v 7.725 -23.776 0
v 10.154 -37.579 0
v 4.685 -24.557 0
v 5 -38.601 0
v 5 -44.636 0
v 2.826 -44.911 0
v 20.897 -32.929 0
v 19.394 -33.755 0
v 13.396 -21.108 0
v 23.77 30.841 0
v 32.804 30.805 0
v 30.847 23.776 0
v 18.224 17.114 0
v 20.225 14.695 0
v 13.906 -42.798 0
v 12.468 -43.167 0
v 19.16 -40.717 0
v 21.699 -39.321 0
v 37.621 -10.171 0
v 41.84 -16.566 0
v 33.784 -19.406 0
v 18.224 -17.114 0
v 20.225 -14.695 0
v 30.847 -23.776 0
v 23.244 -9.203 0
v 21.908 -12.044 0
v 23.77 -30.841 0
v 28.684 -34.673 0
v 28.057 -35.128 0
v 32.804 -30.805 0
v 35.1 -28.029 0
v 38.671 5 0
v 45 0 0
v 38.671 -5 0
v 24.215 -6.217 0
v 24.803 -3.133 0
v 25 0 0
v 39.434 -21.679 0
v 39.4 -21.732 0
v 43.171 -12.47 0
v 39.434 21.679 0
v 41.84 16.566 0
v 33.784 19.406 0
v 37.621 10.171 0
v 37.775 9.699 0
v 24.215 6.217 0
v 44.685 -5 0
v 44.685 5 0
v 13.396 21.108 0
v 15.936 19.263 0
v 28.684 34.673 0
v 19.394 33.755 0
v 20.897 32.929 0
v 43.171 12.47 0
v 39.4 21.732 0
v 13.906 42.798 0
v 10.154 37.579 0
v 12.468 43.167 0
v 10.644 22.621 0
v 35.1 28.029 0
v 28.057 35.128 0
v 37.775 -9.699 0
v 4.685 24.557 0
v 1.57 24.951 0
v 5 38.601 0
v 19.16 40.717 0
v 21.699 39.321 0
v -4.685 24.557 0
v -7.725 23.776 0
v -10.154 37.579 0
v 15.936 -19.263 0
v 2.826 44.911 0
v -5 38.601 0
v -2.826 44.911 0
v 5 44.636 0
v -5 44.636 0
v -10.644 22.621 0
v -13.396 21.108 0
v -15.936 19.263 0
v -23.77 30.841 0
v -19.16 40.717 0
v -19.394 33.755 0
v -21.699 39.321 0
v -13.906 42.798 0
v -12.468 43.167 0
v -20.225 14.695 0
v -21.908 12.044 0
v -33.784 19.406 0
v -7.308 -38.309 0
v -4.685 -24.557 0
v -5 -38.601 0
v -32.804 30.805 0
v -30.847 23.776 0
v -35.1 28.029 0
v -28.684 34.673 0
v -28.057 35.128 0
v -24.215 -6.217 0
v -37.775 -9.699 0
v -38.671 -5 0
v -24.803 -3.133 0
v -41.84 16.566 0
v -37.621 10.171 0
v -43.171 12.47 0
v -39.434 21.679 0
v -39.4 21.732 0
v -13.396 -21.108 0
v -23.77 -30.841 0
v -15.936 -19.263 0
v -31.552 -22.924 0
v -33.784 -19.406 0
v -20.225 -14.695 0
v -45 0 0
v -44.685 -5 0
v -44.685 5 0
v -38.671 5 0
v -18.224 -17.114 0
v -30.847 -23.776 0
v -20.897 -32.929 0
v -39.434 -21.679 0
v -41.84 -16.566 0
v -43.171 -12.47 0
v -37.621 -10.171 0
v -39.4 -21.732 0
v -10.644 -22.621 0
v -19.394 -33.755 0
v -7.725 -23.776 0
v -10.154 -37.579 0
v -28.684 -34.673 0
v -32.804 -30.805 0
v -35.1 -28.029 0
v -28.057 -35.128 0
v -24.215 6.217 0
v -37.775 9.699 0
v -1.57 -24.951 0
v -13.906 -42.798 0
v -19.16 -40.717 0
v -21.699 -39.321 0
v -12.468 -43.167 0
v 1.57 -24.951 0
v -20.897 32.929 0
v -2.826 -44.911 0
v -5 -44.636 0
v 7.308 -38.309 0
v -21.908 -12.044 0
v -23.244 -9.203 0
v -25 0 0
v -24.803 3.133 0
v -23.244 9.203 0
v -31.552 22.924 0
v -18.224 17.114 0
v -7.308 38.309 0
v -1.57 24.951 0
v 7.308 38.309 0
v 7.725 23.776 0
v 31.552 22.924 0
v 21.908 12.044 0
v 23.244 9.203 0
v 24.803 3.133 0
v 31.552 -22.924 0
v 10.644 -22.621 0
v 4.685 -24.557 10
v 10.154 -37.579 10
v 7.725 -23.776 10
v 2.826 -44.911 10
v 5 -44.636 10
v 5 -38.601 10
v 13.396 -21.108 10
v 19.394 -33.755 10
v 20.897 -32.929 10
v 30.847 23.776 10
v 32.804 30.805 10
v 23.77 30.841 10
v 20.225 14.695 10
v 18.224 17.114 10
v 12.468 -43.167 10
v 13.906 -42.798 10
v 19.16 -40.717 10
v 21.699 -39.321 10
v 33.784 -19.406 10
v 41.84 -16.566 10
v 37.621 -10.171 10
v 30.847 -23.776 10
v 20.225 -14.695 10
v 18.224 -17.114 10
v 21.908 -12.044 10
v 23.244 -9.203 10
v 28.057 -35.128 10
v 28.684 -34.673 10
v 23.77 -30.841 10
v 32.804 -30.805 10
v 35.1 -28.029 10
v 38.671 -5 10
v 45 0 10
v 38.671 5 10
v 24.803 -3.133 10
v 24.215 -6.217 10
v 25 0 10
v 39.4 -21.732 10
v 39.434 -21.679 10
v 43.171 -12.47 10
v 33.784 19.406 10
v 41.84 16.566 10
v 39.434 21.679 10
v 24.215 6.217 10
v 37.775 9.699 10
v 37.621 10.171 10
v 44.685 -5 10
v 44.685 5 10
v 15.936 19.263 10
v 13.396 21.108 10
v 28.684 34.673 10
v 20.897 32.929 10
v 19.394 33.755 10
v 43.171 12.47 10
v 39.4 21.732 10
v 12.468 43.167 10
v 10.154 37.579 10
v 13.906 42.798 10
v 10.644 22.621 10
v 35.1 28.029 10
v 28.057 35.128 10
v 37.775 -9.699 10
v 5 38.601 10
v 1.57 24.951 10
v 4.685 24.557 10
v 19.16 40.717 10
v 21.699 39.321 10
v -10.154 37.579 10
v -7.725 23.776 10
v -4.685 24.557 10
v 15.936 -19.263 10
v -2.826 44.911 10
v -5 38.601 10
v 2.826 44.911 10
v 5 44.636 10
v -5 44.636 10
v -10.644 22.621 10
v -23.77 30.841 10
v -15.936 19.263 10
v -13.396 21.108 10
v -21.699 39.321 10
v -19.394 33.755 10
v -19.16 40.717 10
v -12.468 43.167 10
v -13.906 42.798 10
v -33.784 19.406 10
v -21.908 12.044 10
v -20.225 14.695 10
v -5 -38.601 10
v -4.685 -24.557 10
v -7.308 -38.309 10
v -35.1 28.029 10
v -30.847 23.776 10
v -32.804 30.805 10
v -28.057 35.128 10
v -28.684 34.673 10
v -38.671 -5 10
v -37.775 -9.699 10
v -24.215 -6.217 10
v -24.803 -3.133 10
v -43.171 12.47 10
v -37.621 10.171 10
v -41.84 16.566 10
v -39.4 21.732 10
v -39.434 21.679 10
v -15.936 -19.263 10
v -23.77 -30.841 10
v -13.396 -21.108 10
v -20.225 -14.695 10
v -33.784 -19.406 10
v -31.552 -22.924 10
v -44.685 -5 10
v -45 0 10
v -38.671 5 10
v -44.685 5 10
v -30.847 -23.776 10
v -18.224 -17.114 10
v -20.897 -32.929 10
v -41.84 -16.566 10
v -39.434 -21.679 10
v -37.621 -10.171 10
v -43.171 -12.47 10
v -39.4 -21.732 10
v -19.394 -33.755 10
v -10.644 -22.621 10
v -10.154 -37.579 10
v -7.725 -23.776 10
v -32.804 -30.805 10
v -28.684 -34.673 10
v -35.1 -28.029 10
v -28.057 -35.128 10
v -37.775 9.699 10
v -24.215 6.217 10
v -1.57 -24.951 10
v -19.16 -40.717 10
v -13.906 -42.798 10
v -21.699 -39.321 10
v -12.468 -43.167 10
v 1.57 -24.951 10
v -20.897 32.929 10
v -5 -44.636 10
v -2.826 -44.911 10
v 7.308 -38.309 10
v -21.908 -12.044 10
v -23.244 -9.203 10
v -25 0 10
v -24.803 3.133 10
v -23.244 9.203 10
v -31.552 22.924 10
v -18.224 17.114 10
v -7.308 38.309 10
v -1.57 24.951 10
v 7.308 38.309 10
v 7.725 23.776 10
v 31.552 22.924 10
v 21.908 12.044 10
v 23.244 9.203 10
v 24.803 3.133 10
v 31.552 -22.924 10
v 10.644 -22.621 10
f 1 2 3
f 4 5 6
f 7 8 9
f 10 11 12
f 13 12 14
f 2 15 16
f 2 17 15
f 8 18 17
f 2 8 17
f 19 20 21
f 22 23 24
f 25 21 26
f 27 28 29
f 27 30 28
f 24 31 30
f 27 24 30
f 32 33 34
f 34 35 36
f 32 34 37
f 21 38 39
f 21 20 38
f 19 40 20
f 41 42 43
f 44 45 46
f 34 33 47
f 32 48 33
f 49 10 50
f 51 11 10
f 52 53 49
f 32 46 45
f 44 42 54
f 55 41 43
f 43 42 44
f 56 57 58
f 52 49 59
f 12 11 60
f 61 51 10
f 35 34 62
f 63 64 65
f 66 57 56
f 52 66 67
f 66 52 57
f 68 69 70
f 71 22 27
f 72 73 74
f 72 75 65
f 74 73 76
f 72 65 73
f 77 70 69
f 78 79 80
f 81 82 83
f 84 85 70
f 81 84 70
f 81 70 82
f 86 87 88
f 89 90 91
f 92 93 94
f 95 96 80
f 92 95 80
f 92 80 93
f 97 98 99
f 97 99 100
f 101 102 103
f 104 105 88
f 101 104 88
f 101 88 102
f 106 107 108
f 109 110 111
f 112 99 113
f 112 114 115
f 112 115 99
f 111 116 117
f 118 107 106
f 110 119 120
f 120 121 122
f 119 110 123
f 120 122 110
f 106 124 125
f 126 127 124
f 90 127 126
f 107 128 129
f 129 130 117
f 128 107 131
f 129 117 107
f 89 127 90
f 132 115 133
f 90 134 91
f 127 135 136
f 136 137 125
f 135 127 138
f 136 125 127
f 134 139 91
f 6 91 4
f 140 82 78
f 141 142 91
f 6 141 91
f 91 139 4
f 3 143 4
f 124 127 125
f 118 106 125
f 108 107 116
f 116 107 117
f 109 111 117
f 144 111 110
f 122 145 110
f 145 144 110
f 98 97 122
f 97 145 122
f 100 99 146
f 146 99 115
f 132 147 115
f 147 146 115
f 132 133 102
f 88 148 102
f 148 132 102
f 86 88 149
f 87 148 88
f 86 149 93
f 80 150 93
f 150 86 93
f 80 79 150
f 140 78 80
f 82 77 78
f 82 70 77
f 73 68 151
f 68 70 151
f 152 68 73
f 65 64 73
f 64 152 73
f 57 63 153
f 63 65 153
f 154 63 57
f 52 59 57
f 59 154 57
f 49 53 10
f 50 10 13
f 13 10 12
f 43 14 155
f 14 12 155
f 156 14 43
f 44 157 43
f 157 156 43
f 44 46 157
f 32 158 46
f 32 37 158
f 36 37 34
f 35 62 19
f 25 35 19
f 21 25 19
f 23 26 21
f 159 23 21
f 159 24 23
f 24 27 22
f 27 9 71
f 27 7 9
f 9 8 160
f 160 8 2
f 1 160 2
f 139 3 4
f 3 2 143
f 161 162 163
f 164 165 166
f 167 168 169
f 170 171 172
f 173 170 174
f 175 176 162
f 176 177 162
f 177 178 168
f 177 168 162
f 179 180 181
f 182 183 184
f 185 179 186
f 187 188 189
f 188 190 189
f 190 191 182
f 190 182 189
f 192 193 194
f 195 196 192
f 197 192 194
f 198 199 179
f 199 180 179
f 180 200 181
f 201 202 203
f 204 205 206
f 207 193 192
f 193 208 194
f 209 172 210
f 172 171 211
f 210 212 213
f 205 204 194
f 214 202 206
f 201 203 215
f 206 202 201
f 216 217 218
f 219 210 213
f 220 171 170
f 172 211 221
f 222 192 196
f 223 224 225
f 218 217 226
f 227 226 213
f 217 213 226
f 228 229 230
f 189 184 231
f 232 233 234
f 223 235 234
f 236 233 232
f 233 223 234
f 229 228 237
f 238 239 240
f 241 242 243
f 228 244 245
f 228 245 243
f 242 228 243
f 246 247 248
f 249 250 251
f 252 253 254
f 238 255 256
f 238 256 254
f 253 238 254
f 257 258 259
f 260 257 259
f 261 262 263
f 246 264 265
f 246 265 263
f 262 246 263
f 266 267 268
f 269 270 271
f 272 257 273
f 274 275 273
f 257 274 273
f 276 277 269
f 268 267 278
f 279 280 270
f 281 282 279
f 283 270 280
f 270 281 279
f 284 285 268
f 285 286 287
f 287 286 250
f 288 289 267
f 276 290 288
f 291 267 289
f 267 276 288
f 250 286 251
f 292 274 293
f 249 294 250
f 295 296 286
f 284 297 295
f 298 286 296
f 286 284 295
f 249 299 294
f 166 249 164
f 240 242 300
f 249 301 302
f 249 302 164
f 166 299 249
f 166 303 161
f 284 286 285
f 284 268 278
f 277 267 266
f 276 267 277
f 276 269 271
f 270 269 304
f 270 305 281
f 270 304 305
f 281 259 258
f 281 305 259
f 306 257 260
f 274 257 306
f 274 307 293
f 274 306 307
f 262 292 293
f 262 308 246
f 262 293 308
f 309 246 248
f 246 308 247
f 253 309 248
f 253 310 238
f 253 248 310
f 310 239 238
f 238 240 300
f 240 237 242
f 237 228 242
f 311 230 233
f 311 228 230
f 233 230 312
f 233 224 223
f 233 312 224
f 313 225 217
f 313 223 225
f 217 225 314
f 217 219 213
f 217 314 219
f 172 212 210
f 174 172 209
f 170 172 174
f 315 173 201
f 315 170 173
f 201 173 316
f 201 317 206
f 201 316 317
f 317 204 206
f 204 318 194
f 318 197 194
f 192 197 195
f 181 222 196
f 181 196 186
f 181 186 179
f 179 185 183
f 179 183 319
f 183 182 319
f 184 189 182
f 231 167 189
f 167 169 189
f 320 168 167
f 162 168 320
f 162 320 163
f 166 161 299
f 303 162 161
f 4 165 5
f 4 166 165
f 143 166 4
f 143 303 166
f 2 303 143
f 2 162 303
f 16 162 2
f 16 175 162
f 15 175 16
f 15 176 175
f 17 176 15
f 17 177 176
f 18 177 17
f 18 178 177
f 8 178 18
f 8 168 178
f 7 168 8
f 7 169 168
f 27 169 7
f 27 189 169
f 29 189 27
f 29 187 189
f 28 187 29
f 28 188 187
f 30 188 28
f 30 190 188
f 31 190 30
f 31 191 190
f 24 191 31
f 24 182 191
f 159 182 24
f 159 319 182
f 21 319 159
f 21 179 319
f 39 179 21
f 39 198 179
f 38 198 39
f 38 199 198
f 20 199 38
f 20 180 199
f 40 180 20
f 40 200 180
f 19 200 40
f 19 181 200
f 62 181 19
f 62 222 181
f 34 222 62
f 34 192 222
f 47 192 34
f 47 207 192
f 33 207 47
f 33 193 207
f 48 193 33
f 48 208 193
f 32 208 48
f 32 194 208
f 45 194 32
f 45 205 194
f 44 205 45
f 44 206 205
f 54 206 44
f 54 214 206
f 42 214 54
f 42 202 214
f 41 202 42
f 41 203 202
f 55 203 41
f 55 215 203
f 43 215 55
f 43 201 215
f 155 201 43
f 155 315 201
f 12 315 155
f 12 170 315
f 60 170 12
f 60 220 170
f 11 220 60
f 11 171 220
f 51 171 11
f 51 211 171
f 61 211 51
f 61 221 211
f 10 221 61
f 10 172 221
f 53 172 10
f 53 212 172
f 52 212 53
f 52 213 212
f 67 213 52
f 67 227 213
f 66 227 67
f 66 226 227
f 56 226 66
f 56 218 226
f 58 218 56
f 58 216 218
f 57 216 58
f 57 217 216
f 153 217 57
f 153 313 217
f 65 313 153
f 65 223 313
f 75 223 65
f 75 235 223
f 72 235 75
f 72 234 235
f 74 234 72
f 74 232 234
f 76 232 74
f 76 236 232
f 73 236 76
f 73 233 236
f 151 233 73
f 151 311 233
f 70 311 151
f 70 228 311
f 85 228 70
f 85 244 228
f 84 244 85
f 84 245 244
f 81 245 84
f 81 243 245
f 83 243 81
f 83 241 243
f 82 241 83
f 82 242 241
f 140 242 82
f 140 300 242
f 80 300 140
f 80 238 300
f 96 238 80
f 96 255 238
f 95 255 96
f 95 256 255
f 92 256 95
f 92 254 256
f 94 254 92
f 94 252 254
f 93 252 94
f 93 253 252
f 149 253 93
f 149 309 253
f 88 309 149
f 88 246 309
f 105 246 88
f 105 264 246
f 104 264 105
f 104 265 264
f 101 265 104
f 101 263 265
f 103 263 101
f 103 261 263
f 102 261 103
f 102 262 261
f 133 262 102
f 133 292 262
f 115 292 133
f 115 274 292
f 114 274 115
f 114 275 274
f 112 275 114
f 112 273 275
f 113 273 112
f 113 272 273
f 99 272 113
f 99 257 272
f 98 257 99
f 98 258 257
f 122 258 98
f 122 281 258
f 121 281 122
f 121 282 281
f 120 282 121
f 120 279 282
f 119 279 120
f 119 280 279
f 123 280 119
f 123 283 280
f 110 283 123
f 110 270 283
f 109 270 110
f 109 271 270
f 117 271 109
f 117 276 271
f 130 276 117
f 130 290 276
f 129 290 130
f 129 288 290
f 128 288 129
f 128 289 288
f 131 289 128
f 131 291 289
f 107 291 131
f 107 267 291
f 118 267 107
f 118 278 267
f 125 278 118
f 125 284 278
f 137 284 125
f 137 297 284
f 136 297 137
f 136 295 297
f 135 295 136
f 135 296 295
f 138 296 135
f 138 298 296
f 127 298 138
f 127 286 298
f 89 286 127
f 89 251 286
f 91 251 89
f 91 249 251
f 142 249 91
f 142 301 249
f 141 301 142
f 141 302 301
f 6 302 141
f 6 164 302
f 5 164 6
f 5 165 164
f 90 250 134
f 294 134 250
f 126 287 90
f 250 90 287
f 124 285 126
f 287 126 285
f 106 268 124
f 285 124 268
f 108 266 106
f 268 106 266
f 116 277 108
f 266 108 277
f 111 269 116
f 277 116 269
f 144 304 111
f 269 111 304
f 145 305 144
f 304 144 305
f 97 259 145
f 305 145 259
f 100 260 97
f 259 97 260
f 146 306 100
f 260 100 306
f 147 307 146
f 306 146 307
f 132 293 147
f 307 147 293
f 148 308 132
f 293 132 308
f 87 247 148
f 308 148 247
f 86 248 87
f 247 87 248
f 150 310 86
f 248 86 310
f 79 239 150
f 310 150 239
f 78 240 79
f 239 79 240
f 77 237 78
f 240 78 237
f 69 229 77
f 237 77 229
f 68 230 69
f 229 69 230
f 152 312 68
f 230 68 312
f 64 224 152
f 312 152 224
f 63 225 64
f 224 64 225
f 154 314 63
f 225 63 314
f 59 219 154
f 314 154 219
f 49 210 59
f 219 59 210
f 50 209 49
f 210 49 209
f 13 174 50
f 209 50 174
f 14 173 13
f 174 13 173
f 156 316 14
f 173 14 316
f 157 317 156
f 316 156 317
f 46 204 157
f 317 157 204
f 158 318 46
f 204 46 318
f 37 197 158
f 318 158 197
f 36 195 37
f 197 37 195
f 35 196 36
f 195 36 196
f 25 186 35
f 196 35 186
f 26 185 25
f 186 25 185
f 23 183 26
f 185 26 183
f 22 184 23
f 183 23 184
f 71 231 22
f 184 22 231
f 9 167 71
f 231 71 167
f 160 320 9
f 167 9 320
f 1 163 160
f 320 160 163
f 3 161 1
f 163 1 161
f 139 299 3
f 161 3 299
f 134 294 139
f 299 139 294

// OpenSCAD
$fn = 50;
linear_extrude(10) {
    difference() {
        intersection() {
            circle(90/2);
            union() {
                circle(78/2);
                for (i = [0 : 360/16 : 360/16*15]) {
                    rotate(i)
                    translate([0,-5])
                        square([50, 10]);
                }
            }
        }
        circle(50/2);
    }
}
